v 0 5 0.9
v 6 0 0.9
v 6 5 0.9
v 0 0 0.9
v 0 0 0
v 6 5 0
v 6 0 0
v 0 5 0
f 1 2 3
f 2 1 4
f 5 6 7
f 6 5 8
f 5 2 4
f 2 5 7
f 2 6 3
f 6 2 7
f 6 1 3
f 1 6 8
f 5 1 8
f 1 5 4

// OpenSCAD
/* Warning, this is a very basic generator with a lot of approximation 
input data : [VDFN, 9UX, 6x5x0.9mm, 8, , A, C04-00413A]
generated by com.zoubworld.electronics.cad.model3d.Basic
Date : Sun Feb 15 10:50:48 CET 2026
*/

//body
color("black")
translate([0,0,0])
cube([6.0,5.0,0.9], center=false);
